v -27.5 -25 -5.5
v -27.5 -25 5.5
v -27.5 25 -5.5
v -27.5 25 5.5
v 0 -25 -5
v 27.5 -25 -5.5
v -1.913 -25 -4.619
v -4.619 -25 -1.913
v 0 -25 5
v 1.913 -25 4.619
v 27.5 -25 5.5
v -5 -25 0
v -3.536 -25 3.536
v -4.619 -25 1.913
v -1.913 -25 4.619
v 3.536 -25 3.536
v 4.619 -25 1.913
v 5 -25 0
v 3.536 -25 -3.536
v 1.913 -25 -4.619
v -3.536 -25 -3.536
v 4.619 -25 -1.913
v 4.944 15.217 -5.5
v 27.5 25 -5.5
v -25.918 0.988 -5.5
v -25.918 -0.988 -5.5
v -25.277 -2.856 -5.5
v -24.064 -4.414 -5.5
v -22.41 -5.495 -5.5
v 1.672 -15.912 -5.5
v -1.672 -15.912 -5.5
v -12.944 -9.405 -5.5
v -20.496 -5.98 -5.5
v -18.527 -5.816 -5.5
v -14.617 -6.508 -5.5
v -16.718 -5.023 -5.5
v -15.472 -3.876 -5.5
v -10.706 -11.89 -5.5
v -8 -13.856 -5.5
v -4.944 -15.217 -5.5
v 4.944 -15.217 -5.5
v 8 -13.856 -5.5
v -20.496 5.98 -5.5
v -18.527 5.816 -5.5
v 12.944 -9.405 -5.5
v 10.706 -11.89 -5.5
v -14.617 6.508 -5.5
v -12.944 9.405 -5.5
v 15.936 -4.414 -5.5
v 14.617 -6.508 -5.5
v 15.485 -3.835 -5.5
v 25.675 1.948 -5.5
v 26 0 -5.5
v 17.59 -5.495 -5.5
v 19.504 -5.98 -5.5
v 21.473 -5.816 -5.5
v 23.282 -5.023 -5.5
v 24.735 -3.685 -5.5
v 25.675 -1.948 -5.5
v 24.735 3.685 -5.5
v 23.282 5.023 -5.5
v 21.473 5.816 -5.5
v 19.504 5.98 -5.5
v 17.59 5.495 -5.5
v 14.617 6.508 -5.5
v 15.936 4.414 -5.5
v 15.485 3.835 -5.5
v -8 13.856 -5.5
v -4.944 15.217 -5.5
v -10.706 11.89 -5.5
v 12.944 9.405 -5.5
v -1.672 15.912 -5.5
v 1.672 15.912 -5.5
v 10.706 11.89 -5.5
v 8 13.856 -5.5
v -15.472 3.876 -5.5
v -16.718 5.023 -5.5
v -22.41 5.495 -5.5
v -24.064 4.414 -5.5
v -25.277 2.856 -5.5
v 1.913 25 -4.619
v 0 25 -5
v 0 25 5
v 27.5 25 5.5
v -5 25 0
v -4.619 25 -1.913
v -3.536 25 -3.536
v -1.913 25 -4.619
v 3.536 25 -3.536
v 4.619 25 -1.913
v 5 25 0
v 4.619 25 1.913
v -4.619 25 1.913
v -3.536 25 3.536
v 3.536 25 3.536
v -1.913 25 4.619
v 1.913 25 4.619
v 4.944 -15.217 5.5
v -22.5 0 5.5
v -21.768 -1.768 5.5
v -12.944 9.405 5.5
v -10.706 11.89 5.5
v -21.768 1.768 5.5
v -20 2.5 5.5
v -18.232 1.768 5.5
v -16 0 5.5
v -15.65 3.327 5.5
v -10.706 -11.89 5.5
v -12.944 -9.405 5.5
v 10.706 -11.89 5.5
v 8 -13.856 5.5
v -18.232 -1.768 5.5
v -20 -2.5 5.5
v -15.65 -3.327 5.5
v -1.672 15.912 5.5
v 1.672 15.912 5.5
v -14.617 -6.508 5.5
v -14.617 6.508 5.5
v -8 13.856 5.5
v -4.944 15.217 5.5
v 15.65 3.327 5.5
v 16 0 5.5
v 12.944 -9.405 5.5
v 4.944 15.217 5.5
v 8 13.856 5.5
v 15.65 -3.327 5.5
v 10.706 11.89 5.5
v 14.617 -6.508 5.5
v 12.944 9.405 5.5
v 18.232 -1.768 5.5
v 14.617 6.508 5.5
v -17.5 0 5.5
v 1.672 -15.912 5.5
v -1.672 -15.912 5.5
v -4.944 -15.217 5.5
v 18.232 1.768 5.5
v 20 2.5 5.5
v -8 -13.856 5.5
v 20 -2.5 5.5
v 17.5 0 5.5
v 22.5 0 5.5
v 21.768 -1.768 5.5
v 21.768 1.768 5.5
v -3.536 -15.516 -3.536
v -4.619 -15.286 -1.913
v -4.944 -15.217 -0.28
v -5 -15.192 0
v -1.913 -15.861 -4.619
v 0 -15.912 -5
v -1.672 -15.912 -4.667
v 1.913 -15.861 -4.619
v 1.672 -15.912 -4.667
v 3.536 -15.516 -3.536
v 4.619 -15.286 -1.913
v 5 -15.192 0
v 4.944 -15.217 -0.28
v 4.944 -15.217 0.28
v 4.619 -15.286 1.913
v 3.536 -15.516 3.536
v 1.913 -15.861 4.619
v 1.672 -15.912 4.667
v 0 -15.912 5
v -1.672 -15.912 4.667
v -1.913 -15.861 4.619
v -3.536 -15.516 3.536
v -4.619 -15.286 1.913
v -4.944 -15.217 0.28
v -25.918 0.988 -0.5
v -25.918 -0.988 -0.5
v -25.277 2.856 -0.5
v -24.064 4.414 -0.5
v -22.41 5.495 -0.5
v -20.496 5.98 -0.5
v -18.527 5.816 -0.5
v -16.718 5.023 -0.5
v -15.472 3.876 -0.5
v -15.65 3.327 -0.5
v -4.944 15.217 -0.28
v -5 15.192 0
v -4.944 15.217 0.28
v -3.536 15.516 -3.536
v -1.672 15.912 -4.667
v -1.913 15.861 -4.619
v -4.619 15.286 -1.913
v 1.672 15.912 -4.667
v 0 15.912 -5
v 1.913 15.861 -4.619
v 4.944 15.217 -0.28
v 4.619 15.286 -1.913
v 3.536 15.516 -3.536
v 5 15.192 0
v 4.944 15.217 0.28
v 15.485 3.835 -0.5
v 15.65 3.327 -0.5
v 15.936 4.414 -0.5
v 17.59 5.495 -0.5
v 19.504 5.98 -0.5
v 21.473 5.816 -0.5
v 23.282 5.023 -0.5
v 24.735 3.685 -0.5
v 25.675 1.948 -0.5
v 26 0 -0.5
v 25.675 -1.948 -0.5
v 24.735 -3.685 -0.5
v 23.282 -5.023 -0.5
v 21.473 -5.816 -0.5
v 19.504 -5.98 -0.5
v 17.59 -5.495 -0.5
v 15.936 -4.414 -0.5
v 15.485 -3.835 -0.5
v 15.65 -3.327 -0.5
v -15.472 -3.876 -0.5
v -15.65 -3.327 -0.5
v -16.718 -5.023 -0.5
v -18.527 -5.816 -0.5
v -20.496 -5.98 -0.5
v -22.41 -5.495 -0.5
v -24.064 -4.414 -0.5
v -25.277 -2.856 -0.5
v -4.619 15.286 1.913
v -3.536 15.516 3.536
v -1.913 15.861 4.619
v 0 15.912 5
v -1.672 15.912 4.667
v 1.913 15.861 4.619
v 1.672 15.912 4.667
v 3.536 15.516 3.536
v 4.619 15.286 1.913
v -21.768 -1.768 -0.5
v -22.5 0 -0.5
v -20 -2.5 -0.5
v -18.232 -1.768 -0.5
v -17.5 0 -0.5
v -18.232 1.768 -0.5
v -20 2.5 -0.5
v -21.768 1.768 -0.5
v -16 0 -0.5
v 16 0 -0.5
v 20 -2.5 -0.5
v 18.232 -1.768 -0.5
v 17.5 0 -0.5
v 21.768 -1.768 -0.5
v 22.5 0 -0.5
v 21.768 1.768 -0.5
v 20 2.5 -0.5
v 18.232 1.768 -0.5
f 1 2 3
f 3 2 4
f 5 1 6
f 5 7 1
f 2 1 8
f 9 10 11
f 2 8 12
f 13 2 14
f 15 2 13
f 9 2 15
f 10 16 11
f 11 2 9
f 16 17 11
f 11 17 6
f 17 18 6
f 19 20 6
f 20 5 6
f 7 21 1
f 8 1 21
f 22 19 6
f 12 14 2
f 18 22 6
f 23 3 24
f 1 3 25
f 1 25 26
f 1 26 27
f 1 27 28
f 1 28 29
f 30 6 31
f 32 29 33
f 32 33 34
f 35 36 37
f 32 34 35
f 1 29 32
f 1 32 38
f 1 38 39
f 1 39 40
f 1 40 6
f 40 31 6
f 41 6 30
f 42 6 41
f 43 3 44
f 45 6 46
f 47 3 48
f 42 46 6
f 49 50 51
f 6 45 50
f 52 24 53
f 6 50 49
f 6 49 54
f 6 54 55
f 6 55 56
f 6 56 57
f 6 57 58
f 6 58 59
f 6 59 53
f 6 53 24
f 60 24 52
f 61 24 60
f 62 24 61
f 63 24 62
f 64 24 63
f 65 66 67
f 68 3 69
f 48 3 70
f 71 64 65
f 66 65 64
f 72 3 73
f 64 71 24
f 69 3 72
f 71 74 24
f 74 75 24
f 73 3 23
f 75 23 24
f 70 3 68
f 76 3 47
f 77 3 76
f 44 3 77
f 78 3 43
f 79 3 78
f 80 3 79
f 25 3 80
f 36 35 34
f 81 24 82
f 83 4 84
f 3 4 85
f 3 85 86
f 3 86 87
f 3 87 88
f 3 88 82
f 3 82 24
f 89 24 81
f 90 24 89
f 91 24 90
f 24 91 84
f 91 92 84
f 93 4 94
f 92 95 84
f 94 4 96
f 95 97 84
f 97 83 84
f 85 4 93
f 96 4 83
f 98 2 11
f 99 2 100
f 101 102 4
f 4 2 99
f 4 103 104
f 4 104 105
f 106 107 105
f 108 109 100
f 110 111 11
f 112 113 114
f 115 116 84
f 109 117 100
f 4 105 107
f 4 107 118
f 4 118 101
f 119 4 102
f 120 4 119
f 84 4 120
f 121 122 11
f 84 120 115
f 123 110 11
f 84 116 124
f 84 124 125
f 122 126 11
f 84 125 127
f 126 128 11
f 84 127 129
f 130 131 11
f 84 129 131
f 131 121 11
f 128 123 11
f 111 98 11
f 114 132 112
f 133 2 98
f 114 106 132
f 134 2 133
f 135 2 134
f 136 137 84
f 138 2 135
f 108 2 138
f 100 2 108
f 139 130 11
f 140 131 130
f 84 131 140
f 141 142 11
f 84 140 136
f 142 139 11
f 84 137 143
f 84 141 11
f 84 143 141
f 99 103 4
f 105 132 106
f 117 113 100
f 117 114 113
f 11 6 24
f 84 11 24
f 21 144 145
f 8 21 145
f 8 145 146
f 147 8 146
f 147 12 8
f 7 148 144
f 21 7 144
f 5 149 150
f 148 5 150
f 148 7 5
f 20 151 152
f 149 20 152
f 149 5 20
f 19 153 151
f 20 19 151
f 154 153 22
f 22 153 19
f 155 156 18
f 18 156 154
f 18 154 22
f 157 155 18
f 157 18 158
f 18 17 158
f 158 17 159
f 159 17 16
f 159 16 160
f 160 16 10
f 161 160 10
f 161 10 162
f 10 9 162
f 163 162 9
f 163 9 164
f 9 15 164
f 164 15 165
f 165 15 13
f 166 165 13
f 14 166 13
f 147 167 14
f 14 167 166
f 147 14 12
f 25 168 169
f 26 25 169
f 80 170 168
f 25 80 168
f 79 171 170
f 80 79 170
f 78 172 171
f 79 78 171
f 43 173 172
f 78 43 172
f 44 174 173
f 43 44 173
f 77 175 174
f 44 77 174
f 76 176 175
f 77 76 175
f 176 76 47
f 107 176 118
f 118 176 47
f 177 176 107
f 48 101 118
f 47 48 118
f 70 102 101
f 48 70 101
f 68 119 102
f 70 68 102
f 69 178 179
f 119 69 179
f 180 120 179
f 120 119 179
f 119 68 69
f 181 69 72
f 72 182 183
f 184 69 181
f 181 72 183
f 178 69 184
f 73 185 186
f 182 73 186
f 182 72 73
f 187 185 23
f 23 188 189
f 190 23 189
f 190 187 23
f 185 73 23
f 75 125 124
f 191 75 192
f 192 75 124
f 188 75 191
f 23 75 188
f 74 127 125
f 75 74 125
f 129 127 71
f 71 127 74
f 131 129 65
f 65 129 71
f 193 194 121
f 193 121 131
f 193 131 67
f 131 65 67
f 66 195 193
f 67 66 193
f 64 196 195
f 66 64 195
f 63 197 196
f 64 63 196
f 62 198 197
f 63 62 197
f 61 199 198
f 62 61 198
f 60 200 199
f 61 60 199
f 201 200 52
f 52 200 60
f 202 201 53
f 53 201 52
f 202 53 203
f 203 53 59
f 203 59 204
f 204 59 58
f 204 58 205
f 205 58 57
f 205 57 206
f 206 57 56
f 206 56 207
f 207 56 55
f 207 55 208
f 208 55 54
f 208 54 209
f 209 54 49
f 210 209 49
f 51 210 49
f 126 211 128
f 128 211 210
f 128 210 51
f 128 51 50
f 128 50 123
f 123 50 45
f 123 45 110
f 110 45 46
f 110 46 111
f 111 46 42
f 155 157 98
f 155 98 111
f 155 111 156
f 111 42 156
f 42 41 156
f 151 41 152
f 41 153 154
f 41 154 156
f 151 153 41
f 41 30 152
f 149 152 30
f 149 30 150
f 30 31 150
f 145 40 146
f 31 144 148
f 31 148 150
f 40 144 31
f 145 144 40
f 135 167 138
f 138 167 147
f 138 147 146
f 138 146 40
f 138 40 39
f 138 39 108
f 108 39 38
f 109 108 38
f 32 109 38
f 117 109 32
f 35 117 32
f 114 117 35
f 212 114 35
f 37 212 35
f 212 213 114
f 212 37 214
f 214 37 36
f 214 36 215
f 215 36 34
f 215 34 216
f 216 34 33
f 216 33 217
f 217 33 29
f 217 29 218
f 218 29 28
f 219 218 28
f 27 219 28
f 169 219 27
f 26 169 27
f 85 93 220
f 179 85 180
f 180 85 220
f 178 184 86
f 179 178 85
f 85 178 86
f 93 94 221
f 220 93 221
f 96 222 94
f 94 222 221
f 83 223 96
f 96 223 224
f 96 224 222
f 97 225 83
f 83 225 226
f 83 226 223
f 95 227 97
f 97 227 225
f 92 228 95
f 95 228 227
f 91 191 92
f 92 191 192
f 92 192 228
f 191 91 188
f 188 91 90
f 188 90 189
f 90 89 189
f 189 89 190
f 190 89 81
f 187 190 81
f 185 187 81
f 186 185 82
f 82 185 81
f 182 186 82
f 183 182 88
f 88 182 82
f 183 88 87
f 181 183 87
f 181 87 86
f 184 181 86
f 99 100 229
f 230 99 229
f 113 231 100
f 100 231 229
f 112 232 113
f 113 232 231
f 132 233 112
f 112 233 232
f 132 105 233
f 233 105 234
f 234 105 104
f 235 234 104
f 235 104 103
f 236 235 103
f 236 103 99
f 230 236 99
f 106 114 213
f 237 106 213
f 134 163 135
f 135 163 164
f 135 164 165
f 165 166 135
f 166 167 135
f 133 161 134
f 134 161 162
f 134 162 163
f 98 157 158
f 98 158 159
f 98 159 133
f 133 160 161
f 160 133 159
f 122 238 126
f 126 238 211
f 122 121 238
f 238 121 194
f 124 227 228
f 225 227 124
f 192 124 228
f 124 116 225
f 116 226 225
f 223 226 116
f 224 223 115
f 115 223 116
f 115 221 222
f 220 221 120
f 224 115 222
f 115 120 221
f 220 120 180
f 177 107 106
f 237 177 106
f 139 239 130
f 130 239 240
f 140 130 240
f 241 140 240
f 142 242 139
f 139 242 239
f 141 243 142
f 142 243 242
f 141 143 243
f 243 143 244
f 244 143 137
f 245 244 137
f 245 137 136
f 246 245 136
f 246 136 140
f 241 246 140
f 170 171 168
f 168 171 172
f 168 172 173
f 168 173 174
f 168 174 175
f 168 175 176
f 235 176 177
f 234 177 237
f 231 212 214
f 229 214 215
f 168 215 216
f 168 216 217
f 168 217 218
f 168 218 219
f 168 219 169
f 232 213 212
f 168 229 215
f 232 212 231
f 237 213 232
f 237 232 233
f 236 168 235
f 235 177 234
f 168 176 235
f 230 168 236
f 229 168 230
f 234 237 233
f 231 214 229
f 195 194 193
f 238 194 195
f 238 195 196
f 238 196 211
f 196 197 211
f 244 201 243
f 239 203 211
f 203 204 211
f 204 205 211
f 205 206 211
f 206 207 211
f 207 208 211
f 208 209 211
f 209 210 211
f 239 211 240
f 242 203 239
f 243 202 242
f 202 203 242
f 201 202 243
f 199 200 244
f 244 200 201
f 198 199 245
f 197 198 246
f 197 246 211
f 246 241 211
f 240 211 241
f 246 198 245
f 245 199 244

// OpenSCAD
difference() {
	cube([55,50,11], center=true);
	buratos();
}


module buratos() {
	translate( [20,0,0] ) cylinder(h=40, r1=2.5, r2=2.5, center=true);
	translate( [-20,0,0] ) cylinder(h=40, r1=2.5, r2=2.5, center=true);

	translate( [-20,0,-3] ) cylinder( h=5, r1=12/2, r2=12/2, center=true);
	translate( [20,0,-3] ) cylinder( h=5, r1=12/2, r2=12/2, center=true);

	cylinder(h=40, r1=32/2, r2=32/2, center=true);
	rotate([90,0,0])cylinder(h=100, r1=10/2, r2=10/2, center=true);
}
